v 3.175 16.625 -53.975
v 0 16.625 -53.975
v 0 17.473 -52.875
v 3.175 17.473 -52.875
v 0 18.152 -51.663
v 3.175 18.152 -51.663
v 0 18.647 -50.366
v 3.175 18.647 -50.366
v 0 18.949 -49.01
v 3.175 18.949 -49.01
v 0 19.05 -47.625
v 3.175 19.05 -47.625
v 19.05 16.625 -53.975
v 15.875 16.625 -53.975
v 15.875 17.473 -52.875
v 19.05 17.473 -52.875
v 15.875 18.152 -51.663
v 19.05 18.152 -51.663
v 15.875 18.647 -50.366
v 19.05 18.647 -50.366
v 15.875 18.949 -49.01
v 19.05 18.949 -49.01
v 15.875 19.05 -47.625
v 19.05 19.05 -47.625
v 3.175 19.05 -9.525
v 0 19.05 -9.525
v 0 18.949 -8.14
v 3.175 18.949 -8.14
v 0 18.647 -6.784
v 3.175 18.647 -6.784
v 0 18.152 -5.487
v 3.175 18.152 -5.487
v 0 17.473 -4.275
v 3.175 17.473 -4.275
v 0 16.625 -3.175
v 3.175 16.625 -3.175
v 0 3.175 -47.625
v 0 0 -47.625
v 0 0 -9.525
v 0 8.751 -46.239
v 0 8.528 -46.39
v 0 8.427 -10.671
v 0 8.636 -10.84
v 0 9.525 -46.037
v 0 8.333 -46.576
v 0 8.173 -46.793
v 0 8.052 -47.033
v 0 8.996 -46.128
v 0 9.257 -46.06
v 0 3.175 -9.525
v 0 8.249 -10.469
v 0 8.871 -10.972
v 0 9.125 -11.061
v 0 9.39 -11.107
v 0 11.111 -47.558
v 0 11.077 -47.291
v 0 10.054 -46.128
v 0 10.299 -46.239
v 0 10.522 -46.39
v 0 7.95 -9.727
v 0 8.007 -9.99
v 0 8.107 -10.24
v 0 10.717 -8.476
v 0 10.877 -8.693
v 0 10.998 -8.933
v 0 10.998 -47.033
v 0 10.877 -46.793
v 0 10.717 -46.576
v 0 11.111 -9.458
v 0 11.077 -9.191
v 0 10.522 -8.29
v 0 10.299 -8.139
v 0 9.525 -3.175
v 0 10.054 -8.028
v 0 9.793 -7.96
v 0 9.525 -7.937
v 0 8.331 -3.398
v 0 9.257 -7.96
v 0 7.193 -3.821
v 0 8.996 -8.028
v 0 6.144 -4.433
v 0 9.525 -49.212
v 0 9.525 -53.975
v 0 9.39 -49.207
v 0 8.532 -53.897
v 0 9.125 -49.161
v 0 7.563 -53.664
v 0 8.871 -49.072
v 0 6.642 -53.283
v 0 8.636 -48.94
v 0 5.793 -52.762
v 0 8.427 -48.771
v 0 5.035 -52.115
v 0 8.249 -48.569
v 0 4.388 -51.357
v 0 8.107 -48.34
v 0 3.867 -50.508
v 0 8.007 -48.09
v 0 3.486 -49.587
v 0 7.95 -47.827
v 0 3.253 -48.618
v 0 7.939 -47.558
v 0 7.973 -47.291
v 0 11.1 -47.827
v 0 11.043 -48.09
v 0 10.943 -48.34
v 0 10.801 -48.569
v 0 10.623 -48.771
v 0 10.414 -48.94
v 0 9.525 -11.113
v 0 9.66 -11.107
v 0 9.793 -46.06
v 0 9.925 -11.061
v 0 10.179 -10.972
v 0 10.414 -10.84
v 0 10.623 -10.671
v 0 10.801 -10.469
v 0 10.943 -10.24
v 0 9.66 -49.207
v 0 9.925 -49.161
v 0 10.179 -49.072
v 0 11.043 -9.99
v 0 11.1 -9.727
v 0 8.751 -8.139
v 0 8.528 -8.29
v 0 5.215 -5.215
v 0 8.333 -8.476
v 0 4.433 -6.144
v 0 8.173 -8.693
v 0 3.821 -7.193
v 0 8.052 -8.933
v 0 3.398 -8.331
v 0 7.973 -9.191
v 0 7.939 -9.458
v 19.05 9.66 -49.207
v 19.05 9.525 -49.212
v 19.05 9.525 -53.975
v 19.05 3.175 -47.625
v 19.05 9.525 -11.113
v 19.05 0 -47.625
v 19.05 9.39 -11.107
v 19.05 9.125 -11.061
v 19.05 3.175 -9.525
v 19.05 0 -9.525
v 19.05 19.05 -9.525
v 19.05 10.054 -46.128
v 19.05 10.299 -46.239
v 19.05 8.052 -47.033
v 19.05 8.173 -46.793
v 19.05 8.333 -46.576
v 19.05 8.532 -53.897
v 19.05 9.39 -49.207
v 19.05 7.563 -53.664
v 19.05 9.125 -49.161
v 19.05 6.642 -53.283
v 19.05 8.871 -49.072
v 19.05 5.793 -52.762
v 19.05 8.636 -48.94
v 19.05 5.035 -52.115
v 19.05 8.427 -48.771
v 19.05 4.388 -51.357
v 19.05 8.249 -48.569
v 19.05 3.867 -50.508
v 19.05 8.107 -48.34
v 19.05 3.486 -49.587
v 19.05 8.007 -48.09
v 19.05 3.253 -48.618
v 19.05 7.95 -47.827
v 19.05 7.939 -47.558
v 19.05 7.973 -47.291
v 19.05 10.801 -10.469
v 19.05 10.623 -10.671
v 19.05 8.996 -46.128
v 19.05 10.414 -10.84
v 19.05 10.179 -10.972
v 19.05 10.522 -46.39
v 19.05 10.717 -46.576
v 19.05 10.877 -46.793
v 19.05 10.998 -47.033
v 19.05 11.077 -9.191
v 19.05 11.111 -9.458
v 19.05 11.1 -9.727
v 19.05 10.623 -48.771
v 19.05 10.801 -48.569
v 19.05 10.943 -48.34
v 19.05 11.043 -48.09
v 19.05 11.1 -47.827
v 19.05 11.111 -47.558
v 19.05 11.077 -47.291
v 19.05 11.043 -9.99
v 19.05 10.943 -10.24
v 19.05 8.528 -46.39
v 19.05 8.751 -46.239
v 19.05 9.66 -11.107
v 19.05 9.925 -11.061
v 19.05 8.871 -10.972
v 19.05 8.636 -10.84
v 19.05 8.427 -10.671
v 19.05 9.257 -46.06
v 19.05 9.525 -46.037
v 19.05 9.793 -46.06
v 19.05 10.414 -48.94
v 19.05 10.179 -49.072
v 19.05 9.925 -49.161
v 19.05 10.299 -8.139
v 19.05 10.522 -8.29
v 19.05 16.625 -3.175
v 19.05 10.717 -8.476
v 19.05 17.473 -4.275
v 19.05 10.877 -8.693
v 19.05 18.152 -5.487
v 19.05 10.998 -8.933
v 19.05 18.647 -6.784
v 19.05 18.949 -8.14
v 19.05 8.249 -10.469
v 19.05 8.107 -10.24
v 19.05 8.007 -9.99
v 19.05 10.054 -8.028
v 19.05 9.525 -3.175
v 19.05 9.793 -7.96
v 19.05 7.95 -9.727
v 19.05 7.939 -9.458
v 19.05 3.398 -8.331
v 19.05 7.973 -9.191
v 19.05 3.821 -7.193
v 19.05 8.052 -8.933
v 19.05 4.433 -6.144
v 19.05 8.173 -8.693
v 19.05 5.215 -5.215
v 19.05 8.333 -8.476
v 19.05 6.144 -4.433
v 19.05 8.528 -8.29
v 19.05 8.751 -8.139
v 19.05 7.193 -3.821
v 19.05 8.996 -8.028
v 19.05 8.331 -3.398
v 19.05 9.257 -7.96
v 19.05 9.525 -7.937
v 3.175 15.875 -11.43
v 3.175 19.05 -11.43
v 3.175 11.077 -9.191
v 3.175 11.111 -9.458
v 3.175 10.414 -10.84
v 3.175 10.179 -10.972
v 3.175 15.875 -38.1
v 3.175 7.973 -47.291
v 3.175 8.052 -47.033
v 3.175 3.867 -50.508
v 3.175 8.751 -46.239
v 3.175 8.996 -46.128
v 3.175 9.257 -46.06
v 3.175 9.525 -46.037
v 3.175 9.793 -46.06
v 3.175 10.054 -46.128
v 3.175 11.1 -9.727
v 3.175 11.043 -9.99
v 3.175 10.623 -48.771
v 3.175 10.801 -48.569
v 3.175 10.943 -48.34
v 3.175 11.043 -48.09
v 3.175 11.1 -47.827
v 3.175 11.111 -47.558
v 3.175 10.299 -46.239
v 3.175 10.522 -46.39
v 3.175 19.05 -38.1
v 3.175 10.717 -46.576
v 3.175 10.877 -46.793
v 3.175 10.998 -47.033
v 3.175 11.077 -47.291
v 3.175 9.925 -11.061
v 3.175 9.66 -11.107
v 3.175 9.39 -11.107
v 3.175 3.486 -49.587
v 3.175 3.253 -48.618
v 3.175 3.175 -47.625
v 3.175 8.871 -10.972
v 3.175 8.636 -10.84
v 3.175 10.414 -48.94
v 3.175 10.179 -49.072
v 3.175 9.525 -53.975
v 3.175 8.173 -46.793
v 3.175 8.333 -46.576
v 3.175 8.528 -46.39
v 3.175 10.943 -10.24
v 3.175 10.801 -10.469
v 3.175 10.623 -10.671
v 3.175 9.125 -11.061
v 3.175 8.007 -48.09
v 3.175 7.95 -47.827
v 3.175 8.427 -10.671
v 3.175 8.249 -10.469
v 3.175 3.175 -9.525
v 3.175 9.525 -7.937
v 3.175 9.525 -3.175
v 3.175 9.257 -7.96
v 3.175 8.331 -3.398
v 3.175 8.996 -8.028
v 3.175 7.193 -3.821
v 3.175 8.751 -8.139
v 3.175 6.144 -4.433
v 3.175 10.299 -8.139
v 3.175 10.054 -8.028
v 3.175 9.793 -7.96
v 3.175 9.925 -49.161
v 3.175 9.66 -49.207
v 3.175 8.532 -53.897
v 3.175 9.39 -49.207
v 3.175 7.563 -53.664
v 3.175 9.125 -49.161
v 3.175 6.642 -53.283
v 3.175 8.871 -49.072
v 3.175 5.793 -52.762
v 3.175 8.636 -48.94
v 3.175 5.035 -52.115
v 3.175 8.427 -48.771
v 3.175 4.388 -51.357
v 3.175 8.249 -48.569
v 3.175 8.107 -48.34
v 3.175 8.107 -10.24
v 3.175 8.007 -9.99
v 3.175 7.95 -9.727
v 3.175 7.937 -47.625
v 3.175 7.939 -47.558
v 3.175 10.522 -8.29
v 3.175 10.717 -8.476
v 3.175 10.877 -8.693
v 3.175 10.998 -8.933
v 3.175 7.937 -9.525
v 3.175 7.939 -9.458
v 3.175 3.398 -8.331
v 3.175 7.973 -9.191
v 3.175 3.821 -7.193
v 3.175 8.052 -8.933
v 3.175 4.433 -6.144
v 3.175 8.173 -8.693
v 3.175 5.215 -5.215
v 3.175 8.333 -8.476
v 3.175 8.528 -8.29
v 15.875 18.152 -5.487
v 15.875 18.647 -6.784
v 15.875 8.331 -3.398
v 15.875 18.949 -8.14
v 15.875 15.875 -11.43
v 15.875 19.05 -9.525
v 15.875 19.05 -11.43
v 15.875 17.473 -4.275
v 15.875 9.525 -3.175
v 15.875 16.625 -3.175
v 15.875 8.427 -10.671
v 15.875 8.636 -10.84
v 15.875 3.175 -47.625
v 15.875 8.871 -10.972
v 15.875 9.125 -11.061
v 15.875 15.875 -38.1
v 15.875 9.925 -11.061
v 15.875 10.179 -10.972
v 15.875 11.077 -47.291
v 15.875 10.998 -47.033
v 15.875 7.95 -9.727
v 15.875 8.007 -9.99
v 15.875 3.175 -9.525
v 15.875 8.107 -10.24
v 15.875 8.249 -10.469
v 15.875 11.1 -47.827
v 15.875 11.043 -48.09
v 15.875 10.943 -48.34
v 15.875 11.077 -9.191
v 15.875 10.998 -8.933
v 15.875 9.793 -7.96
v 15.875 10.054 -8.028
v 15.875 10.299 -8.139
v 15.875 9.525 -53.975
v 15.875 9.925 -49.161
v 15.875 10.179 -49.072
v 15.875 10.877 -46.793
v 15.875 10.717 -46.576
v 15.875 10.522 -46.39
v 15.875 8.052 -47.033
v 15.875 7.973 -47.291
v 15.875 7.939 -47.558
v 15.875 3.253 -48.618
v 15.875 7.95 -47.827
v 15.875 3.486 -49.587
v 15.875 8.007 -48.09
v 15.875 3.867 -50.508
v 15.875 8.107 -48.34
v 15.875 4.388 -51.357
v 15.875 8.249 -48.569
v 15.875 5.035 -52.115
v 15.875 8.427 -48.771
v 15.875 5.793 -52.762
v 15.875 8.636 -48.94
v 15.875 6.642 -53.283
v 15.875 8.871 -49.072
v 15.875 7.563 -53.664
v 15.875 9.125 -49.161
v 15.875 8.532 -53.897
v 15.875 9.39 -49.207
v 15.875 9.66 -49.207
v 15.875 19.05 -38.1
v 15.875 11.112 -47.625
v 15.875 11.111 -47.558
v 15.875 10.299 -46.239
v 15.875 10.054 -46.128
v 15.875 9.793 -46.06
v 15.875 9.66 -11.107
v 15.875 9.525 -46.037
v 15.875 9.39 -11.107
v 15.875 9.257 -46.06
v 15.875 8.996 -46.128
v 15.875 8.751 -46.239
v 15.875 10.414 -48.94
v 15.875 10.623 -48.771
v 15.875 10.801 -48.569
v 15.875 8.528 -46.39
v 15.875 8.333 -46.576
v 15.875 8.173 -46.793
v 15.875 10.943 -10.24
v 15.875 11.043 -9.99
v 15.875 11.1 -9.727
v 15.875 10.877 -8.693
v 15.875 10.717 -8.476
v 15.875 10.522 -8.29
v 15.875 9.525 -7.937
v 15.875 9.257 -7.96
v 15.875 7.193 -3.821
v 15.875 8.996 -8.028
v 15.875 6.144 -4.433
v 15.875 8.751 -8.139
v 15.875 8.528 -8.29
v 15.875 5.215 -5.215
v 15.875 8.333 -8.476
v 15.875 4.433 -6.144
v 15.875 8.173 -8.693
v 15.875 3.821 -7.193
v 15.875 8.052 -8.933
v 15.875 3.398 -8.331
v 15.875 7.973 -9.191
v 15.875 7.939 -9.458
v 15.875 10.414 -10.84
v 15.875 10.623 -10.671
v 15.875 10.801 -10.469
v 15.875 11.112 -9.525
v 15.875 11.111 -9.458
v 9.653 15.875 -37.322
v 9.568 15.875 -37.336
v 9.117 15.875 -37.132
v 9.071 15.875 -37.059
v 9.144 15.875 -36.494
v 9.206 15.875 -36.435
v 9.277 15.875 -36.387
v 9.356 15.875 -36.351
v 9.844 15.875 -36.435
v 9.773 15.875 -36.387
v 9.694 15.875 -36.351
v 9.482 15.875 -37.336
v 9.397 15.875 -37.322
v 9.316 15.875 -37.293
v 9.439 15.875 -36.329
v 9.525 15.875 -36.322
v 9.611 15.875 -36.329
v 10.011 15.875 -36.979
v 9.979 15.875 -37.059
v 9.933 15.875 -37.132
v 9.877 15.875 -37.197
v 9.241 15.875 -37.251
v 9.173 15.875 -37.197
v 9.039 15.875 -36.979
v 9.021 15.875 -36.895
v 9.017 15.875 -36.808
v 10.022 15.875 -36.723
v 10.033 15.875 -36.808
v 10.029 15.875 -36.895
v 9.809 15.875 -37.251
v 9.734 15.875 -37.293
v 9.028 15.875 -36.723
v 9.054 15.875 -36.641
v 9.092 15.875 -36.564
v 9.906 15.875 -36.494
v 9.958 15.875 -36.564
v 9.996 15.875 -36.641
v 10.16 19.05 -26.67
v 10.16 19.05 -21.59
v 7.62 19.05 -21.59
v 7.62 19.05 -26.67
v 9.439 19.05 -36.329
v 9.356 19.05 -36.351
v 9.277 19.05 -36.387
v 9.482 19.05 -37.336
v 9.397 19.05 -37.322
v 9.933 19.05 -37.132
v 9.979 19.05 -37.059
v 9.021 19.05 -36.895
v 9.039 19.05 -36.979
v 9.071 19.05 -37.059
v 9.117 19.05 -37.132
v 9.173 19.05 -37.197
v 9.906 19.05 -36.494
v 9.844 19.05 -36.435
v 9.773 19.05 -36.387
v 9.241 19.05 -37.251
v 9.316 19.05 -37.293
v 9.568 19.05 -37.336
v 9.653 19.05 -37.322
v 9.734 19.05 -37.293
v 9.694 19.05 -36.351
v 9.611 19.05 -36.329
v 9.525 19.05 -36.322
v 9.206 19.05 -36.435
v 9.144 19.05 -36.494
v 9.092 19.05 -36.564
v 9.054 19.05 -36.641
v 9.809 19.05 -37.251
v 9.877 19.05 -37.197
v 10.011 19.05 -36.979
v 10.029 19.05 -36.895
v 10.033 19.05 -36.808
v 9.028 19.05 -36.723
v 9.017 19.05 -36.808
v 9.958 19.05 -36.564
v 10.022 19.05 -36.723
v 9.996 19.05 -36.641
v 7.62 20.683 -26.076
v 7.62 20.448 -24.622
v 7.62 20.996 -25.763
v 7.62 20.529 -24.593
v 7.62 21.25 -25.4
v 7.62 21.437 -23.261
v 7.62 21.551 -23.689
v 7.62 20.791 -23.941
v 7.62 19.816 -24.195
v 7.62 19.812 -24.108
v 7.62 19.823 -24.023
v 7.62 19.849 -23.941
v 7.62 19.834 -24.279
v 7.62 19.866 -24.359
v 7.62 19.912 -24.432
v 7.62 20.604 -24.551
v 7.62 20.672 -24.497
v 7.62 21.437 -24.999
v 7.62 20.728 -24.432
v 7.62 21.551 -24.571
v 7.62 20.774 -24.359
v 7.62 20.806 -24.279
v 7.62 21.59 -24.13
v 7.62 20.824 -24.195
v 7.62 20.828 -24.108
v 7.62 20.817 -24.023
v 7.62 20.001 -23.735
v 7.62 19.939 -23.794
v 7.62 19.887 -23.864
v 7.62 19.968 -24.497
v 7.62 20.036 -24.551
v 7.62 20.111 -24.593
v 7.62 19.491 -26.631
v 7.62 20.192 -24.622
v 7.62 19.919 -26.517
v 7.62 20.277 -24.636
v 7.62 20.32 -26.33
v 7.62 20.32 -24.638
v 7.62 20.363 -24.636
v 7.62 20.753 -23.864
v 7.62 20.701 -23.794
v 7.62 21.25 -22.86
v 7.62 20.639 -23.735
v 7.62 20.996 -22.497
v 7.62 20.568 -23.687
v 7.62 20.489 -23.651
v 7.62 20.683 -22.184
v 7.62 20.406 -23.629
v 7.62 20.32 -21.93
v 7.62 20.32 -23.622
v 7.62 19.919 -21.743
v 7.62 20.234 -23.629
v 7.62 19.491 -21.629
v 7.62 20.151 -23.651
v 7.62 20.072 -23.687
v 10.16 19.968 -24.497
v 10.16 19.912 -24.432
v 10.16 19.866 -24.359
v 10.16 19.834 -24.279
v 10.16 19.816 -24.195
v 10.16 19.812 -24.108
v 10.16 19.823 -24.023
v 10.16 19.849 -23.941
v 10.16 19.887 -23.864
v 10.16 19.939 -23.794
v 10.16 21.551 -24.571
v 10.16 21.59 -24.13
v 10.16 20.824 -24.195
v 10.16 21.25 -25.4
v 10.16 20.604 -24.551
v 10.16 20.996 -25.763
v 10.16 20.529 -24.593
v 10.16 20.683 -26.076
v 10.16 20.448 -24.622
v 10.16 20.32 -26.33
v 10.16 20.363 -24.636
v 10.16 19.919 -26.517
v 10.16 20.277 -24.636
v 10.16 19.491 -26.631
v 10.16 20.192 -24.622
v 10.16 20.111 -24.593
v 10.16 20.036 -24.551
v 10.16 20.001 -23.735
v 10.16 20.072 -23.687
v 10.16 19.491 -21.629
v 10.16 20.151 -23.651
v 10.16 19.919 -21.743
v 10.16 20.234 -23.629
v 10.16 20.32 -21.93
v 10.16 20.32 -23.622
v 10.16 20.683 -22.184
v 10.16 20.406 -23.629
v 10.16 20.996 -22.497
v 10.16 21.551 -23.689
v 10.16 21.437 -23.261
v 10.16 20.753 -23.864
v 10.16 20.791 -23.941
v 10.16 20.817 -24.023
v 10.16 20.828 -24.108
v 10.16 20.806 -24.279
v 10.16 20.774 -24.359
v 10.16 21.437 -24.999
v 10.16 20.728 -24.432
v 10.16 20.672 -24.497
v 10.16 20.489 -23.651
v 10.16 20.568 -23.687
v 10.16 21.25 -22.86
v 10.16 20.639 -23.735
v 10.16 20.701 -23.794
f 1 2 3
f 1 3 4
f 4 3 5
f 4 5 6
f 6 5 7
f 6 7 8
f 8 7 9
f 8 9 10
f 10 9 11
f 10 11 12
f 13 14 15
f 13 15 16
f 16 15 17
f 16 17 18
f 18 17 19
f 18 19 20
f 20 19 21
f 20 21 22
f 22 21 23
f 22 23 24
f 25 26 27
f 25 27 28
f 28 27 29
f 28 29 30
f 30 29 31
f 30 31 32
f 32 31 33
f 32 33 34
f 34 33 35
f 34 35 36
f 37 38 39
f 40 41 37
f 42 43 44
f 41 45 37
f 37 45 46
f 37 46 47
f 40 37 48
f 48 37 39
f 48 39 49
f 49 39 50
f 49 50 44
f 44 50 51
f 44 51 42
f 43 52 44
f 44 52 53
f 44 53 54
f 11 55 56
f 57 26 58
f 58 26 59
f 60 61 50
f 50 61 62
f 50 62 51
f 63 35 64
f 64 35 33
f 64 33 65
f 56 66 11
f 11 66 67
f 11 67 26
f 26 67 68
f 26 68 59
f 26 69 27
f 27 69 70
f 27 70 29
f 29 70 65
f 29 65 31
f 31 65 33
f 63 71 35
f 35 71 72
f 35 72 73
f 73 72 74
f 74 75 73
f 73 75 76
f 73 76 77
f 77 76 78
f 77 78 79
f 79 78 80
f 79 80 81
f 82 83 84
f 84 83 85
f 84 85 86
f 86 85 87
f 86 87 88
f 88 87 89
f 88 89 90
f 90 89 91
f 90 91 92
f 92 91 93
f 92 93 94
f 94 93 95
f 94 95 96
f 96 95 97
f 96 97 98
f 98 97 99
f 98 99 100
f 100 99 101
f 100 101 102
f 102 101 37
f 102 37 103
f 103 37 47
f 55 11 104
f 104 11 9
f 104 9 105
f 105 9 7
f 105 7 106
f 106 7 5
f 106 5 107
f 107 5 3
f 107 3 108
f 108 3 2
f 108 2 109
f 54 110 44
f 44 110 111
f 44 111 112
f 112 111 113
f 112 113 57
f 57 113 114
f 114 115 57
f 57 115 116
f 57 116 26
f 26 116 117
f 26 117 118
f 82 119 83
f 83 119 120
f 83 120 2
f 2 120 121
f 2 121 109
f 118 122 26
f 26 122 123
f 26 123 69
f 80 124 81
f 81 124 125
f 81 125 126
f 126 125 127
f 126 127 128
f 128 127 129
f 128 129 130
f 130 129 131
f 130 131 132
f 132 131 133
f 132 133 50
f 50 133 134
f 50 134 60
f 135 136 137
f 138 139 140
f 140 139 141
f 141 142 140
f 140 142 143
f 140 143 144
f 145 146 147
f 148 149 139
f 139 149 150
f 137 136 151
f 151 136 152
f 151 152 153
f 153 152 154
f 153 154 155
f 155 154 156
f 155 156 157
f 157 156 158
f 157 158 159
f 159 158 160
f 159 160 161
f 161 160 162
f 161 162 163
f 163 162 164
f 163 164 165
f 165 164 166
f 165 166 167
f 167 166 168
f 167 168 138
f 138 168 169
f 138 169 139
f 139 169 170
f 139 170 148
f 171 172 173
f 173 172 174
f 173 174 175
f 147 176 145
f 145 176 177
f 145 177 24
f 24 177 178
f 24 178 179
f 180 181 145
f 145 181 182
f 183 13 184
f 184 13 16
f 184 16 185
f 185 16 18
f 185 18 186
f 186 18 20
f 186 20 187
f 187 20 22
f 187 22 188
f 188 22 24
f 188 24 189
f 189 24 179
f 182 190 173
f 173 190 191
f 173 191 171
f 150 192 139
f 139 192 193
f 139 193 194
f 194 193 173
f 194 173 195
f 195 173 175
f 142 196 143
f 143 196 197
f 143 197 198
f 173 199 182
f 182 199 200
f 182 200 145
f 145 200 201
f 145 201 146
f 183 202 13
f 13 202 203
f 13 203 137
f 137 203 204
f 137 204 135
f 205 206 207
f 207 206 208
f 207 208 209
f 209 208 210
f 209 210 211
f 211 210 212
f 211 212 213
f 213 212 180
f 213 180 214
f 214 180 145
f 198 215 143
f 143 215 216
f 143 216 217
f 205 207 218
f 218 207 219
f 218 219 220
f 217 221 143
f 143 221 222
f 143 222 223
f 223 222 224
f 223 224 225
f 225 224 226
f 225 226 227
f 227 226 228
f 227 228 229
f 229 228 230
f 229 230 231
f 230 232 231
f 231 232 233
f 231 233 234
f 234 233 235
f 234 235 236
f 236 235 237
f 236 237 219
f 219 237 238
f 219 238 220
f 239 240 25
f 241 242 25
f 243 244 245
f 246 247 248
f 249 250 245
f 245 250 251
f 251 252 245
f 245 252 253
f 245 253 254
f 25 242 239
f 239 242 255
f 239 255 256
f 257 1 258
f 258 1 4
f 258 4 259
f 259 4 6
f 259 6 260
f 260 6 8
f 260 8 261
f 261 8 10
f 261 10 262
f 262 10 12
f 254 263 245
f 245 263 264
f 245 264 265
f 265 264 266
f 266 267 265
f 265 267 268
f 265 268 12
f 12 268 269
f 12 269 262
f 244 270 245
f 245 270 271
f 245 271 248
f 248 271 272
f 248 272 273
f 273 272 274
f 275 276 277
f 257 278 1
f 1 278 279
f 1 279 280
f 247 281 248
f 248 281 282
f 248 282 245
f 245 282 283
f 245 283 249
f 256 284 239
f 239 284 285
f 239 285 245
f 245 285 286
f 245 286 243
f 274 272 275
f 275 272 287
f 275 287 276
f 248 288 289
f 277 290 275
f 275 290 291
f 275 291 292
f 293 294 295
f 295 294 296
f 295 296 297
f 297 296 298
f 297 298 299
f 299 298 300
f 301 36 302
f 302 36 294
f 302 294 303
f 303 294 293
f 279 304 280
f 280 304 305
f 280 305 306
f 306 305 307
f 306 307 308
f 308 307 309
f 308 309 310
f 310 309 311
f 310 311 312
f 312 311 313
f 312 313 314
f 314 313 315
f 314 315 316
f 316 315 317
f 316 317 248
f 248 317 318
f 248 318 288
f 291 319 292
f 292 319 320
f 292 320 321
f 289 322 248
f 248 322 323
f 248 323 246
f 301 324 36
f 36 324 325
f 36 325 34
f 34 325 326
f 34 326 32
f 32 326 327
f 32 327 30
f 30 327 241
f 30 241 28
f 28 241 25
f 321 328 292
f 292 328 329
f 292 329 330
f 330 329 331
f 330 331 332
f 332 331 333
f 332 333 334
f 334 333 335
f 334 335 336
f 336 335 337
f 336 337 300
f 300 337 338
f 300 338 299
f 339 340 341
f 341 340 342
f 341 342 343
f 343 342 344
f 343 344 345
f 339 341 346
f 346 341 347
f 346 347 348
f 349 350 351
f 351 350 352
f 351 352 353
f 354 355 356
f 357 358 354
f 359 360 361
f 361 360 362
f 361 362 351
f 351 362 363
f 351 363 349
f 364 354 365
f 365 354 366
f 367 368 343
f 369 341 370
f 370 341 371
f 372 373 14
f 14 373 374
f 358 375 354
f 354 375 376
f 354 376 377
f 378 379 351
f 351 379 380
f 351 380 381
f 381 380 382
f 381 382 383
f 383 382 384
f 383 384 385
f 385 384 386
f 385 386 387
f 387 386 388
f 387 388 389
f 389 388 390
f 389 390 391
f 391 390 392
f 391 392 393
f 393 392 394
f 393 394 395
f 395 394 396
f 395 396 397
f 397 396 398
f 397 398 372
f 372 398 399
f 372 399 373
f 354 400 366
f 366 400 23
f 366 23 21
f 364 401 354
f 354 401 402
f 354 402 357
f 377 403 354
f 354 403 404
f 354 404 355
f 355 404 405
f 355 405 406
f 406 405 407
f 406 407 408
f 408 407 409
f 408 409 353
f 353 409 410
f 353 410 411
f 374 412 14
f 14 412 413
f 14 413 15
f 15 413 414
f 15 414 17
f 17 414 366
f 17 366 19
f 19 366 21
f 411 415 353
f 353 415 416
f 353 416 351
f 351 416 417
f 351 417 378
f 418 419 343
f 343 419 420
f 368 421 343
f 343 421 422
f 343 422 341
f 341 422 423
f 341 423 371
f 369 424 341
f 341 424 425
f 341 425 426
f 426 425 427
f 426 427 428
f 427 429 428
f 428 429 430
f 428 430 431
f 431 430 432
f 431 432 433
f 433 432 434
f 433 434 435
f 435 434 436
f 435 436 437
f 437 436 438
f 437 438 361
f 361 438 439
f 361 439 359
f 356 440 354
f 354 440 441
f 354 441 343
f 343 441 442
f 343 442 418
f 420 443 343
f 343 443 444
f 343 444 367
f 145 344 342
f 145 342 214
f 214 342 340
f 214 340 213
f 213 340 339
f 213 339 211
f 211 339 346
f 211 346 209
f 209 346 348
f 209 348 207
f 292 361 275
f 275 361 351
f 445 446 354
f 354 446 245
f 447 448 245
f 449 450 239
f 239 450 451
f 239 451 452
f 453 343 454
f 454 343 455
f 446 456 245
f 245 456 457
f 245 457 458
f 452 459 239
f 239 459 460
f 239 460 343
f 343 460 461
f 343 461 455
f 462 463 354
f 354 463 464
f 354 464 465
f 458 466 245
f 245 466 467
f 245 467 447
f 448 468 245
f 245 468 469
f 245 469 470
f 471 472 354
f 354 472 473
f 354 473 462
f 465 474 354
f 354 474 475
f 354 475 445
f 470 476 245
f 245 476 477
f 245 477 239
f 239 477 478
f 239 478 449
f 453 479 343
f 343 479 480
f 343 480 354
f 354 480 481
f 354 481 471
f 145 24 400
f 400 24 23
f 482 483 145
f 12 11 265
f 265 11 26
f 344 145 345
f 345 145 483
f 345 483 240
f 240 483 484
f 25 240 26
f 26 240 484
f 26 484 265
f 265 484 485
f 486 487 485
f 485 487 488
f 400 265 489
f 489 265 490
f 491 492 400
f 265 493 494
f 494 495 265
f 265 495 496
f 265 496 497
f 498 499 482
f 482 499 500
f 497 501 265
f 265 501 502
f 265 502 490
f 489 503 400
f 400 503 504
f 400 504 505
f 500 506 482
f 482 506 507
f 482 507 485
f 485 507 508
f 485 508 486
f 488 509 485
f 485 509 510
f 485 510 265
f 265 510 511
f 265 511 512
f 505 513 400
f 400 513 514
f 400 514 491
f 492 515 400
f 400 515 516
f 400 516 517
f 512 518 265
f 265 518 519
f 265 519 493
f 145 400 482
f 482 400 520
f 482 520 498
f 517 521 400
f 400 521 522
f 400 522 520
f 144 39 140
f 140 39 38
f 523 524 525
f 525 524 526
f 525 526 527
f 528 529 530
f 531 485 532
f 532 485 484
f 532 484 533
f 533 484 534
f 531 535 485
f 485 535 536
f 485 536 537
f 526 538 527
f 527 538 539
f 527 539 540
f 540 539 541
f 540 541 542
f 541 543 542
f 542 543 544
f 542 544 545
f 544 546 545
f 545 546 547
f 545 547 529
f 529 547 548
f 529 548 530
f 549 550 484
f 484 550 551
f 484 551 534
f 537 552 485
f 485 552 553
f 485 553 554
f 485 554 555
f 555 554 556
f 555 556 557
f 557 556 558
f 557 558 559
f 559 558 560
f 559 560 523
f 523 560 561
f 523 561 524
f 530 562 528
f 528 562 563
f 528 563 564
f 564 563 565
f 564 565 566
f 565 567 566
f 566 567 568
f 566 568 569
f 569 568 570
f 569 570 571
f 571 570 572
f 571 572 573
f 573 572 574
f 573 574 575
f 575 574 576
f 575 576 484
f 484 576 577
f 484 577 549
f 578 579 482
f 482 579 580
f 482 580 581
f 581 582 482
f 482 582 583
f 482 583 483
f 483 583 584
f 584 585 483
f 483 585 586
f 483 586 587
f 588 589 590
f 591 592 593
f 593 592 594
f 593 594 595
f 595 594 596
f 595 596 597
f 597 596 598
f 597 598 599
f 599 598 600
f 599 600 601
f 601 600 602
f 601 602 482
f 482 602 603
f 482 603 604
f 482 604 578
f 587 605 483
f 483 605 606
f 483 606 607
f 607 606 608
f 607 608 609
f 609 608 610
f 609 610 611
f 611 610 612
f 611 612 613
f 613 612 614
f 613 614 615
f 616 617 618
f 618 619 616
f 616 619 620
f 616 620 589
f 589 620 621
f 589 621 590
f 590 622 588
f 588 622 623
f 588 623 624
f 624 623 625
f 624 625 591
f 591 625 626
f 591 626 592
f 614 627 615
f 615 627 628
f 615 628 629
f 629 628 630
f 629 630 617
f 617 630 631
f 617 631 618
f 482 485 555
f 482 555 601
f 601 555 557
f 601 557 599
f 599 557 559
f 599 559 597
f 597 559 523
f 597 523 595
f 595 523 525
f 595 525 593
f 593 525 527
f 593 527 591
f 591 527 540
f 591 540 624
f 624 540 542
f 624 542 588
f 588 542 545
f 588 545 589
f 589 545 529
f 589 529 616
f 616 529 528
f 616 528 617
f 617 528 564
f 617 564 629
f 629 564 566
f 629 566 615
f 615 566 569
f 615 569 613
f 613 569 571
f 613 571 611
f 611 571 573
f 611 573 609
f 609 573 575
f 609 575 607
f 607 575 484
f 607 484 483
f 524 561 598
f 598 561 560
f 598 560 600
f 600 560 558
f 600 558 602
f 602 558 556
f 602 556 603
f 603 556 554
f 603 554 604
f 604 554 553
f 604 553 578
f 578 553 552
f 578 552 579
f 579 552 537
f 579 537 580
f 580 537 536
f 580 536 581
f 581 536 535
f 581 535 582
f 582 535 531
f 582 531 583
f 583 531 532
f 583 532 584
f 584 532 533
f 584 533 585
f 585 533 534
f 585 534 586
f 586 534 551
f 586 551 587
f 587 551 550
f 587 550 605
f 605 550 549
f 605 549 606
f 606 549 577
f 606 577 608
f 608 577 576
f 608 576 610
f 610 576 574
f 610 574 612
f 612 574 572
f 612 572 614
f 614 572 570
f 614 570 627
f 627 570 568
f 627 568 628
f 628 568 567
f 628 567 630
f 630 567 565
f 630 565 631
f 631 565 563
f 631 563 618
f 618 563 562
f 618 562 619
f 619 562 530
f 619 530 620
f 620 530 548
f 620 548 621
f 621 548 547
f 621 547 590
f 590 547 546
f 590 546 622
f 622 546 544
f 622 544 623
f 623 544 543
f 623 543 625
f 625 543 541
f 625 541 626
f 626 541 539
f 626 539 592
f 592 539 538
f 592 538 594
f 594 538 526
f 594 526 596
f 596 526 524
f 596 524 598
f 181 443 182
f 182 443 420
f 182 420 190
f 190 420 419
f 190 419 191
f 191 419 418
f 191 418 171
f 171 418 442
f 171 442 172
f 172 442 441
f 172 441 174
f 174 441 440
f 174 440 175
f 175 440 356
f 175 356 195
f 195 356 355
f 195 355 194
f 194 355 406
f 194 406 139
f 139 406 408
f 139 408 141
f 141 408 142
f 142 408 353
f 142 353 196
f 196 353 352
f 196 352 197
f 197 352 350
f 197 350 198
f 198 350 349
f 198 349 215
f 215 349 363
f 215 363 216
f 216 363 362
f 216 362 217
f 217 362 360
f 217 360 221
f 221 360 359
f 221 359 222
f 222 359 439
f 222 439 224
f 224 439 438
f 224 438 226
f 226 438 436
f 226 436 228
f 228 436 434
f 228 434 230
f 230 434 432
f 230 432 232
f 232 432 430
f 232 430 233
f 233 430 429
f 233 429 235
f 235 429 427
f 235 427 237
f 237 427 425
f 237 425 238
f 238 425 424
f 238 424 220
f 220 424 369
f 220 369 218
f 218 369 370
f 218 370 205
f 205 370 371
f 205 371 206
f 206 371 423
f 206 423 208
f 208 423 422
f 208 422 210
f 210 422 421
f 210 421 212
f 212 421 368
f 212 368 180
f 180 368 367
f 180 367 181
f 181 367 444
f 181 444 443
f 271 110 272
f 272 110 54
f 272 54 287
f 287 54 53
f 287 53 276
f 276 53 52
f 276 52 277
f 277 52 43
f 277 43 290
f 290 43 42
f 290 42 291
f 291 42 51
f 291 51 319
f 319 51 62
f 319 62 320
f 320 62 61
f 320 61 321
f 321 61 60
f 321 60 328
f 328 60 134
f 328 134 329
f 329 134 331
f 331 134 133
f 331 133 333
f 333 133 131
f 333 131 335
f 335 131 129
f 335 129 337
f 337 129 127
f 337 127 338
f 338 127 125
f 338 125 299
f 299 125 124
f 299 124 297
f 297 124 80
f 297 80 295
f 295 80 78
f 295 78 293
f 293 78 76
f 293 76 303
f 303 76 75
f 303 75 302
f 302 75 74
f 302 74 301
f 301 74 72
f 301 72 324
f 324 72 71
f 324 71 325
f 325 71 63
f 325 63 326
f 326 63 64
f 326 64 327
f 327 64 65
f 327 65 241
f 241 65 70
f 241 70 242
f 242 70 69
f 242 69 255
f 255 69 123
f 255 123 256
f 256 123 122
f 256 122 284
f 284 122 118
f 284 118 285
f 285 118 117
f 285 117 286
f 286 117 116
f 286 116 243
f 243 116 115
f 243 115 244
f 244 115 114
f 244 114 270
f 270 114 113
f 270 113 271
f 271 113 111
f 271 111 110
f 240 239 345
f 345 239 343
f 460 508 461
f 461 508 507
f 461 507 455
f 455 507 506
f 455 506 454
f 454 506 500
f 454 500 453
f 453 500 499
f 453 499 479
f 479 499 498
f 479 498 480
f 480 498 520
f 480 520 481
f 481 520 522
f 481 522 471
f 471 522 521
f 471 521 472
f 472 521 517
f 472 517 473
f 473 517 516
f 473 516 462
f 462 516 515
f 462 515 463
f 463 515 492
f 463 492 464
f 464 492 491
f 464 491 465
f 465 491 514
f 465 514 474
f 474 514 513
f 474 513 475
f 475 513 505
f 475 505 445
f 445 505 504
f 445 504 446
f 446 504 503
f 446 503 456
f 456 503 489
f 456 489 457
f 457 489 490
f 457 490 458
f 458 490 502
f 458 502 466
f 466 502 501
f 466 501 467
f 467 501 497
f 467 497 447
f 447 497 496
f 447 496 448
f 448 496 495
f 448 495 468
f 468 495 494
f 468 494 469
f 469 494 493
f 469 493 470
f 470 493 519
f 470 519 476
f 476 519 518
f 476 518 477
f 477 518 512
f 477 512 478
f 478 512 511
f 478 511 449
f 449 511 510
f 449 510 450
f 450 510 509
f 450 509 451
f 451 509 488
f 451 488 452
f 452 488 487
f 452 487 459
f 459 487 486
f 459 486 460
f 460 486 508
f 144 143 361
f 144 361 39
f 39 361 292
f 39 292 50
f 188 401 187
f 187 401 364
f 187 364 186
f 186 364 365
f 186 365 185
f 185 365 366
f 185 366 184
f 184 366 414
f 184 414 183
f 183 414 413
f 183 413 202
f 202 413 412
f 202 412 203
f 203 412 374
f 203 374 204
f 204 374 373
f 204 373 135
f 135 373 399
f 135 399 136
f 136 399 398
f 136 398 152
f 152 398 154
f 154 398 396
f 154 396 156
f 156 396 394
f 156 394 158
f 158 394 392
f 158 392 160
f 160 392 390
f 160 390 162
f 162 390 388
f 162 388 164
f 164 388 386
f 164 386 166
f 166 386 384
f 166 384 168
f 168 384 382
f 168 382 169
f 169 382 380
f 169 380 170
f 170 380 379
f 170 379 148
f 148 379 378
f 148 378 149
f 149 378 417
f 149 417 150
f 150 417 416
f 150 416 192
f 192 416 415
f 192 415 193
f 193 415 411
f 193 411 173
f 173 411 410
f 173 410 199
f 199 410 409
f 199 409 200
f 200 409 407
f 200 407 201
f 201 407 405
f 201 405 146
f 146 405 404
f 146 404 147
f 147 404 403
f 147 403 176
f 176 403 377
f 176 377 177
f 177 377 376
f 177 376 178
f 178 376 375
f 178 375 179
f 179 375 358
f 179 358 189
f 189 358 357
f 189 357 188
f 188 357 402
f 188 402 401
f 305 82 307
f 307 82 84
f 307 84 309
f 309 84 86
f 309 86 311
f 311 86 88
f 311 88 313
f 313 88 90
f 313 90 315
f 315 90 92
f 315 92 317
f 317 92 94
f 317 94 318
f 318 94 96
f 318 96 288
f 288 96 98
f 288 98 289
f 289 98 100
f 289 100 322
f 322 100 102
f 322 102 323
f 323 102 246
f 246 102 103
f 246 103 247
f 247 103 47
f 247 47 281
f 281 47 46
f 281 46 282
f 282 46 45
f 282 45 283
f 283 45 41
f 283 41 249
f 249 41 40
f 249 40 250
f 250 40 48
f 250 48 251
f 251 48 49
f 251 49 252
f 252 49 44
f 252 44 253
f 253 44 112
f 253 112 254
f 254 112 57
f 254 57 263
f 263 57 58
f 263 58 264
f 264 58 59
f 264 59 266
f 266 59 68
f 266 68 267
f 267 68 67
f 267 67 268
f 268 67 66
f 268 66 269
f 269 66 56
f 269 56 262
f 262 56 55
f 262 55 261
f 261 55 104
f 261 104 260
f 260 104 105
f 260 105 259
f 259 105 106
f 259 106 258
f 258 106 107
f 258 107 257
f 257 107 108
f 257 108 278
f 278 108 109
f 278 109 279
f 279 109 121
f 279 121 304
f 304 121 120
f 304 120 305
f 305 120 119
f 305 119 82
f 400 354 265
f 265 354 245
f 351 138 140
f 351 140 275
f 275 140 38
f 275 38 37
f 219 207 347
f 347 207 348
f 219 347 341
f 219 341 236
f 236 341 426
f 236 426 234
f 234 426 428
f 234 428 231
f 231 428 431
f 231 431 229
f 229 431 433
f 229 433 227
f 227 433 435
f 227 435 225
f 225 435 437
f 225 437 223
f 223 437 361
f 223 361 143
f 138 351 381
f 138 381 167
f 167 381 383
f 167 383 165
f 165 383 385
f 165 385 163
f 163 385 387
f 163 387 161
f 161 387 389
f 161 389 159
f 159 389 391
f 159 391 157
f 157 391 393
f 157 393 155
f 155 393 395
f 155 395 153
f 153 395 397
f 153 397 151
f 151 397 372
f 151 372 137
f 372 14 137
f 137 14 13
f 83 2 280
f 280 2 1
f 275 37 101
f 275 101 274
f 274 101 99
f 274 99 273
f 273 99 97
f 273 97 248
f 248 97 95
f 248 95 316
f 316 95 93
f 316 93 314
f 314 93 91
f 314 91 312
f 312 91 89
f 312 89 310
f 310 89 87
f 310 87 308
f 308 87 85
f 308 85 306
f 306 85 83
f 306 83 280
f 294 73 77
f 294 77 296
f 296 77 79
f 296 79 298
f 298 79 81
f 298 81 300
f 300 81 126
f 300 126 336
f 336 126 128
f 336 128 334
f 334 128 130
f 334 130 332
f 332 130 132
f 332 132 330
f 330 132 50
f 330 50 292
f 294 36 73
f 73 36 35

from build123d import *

# Parameters (mm, degrees)
SKETCH1_W           = 19.05
SKETCH1_H           = 57.15
BOSS_EXTRUDE1_DEPTH = 19.05
SKETCH2_W           = 12.7
SKETCH2_H           = 12.7
CUT_EXTRUDE1_DEPTH  = 76.2
SKETCH3_W           = 2.54
SKETCH3_H           = 5.08
BOSS_EXTRUDE2_DEPTH = 2.54
SKETCH4_R           = 0.508
SKETCH4_R_2         = 1.5875
CUT_EXTRUDE2_DEPTH  = 19.05
SKETCH7_R           = 0.508
CUT_EXTRUDE3_DEPTH  = 12.7
SKETCH8_W           = 12.7
SKETCH8_H           = 9.525
CUT_EXTRUDE4_DEPTH  = 25.4
SKETCH11_R          = 1.5875
CUT_EXTRUDE6_DEPTH  = 19.05
SKETCH12_W          = 12.7
SKETCH12_H          = 30.970960978
CUT_EXTRUDE7_DEPTH  = 3.81
SKETCH13_W          = 12.7
SKETCH13_H          = 19.463069007
CUT_EXTRUDE8_DEPTH  = 3.81
CUT_EXTRUDE9_DEPTH  = 19.05


with BuildPart() as part:
    # Sketch1 → Boss-Extrude1 (new body)
    with BuildSketch(Plane(origin=(0, 0, 0), x_dir=(1, 0, 0), z_dir=(0, 1, 0))):
        with Locations((9.525, 28.575)):
            Rectangle(SKETCH1_W, SKETCH1_H)
    extrude(amount=BOSS_EXTRUDE1_DEPTH)

    # Sketch2 → Cut-Extrude1 (cut)
    with BuildSketch(Plane.XY):
        with Locations((9.525, 9.525)):
            Rectangle(SKETCH2_W, SKETCH2_H)
    extrude(amount=-CUT_EXTRUDE1_DEPTH, mode=Mode.SUBTRACT)

    # Sketch3 → Boss-Extrude2 (add)
    with BuildSketch(Plane(origin=(0, 19.05, 0), x_dir=(1, 0, 0), z_dir=(0, 1, 0))):
        with Locations((8.89, 24.13)):
            Rectangle(SKETCH3_W, SKETCH3_H)
    extrude(amount=BOSS_EXTRUDE2_DEPTH)

    # Sketch4 → Cut-Extrude2 (cut)
    with BuildSketch(Plane(origin=(0, 0, 0), x_dir=(0, 0, -1), z_dir=(1, 0, 0))):
        with Locations((24.13, 20.32)):
            Circle(SKETCH4_R)
        with Locations((9.525, 9.525)):
            Circle(SKETCH4_R_2)
        with BuildLine():
            ThreePointArc((26.67, 19.05), (24.13, 24.78976855), (21.59, 19.05))
            add(Edge.make_bspline(
                [(26.67, 19.05), (26.67, 21.59), (24.13, 21.59), (21.59, 21.59), (21.59, 19.05)],
                knots=[3.141592654, 3.141592654, 3.141592654, 4.71238898, 4.71238898, 6.283185307, 6.283185307, 6.283185307], degree=2, weights=[1, 0.707106781, 1, 0.707106781, 1]))
        make_face()
        with BuildLine():
            ThreePointArc((9.525, 19.05), (0, 9.525), (9.525, 0))
            ThreePointArc((9.525, 0), (-29.420443119, 9.525), (9.525, 19.05))
        make_face()
    extrude(amount=CUT_EXTRUDE2_DEPTH, mode=Mode.SUBTRACT)

    # Sketch7 → Cut-Extrude3 (cut)
    with BuildSketch(Plane(origin=(0, 19.05, 0), x_dir=(1, 0, 0), z_dir=(0, 1, 0))):
        with Locations((9.525, 36.83)):
            Circle(SKETCH7_R)
        Polygon((3.175, 0), (3.175, 11.43), (6.35, 11.43), (12.7, 11.43), (15.875, 11.43), (15.875, 0), align=None)
    extrude(amount=-CUT_EXTRUDE3_DEPTH, mode=Mode.SUBTRACT)

    # Sketch8 → Cut-Extrude4 (cut)
    with BuildSketch(Plane(origin=(0, 19.05, 0), x_dir=(1, 0, 0), z_dir=(0, 1, 0))):
        with Locations((9.525, 4.7625)):
            Rectangle(SKETCH8_W, SKETCH8_H)
    extrude(amount=-CUT_EXTRUDE4_DEPTH, mode=Mode.SUBTRACT)

    # Sketch11 → Cut-Extrude6 (cut)
    with BuildSketch(Plane(origin=(0, 0, 0), x_dir=(0, 0, -1), z_dir=(1, 0, 0))):
        with Locations((47.625, 9.525)):
            Circle(SKETCH11_R)
        with BuildLine():
            ThreePointArc((47.625, 0), (57.15, 9.525), (47.625, 19.05))
            ThreePointArc((47.625, 19.05), (63.905355935, 9.525), (47.625, 0))
        make_face()
    extrude(amount=CUT_EXTRUDE6_DEPTH, mode=Mode.SUBTRACT)

    # Sketch12 → Cut-Extrude7 (cut)
    with BuildSketch(Plane(origin=(0, 19.05, 0), x_dir=(1, 0, 0), z_dir=(0, 1, 0))):
        with Locations((9.525, 53.585480489)):
            Rectangle(SKETCH12_W, SKETCH12_H)
    extrude(amount=-CUT_EXTRUDE7_DEPTH, mode=Mode.SUBTRACT)

    # Sketch13 → Cut-Extrude8 (cut)
    with BuildSketch(Plane(origin=(0, 0, 0), x_dir=(1, 0, 0), z_dir=(0, 1, 0))):
        with Locations((9.525, 57.356534504)):
            Rectangle(SKETCH13_W, SKETCH13_H)
    extrude(amount=CUT_EXTRUDE8_DEPTH, mode=Mode.SUBTRACT)

    # Sketch14 → Cut-Extrude9 (cut)
    with BuildSketch(Plane(origin=(0, 0, 0), x_dir=(0, 0, -1), z_dir=(1, 0, 0))):
        with BuildLine():
            Line((9.525, 0), (9.525, 3.175))
            ThreePointArc((9.525, 3.175), (5.21507822, 5.21507822), (3.175, 9.525))
            Line((3.175, 9.525), (3.175, 18.741336737))
            Line((3.175, 18.741336737), (-3.728591213, 9.978700773))
            Line((-3.728591213, 9.978700773), (-2.544461104, 0))
            Line((-2.544461104, 0), (9.525, 0))
        make_face()
        with BuildLine():
            Line((47.625, 0), (47.625, 3.175))
            ThreePointArc((47.625, 3.175), (52.115128061, 5.034871939), (53.975, 9.525))
            Line((53.975, 9.525), (53.975, 20.201145039))
            Line((53.975, 20.201145039), (59.422737854, 9.525))
            Line((59.422737854, 9.525), (58.062916797, -0.332636104))
            Line((58.062916797, -0.332636104), (47.625, 0))
        make_face()
    extrude(amount=CUT_EXTRUDE9_DEPTH, mode=Mode.SUBTRACT)


solid = part.part
